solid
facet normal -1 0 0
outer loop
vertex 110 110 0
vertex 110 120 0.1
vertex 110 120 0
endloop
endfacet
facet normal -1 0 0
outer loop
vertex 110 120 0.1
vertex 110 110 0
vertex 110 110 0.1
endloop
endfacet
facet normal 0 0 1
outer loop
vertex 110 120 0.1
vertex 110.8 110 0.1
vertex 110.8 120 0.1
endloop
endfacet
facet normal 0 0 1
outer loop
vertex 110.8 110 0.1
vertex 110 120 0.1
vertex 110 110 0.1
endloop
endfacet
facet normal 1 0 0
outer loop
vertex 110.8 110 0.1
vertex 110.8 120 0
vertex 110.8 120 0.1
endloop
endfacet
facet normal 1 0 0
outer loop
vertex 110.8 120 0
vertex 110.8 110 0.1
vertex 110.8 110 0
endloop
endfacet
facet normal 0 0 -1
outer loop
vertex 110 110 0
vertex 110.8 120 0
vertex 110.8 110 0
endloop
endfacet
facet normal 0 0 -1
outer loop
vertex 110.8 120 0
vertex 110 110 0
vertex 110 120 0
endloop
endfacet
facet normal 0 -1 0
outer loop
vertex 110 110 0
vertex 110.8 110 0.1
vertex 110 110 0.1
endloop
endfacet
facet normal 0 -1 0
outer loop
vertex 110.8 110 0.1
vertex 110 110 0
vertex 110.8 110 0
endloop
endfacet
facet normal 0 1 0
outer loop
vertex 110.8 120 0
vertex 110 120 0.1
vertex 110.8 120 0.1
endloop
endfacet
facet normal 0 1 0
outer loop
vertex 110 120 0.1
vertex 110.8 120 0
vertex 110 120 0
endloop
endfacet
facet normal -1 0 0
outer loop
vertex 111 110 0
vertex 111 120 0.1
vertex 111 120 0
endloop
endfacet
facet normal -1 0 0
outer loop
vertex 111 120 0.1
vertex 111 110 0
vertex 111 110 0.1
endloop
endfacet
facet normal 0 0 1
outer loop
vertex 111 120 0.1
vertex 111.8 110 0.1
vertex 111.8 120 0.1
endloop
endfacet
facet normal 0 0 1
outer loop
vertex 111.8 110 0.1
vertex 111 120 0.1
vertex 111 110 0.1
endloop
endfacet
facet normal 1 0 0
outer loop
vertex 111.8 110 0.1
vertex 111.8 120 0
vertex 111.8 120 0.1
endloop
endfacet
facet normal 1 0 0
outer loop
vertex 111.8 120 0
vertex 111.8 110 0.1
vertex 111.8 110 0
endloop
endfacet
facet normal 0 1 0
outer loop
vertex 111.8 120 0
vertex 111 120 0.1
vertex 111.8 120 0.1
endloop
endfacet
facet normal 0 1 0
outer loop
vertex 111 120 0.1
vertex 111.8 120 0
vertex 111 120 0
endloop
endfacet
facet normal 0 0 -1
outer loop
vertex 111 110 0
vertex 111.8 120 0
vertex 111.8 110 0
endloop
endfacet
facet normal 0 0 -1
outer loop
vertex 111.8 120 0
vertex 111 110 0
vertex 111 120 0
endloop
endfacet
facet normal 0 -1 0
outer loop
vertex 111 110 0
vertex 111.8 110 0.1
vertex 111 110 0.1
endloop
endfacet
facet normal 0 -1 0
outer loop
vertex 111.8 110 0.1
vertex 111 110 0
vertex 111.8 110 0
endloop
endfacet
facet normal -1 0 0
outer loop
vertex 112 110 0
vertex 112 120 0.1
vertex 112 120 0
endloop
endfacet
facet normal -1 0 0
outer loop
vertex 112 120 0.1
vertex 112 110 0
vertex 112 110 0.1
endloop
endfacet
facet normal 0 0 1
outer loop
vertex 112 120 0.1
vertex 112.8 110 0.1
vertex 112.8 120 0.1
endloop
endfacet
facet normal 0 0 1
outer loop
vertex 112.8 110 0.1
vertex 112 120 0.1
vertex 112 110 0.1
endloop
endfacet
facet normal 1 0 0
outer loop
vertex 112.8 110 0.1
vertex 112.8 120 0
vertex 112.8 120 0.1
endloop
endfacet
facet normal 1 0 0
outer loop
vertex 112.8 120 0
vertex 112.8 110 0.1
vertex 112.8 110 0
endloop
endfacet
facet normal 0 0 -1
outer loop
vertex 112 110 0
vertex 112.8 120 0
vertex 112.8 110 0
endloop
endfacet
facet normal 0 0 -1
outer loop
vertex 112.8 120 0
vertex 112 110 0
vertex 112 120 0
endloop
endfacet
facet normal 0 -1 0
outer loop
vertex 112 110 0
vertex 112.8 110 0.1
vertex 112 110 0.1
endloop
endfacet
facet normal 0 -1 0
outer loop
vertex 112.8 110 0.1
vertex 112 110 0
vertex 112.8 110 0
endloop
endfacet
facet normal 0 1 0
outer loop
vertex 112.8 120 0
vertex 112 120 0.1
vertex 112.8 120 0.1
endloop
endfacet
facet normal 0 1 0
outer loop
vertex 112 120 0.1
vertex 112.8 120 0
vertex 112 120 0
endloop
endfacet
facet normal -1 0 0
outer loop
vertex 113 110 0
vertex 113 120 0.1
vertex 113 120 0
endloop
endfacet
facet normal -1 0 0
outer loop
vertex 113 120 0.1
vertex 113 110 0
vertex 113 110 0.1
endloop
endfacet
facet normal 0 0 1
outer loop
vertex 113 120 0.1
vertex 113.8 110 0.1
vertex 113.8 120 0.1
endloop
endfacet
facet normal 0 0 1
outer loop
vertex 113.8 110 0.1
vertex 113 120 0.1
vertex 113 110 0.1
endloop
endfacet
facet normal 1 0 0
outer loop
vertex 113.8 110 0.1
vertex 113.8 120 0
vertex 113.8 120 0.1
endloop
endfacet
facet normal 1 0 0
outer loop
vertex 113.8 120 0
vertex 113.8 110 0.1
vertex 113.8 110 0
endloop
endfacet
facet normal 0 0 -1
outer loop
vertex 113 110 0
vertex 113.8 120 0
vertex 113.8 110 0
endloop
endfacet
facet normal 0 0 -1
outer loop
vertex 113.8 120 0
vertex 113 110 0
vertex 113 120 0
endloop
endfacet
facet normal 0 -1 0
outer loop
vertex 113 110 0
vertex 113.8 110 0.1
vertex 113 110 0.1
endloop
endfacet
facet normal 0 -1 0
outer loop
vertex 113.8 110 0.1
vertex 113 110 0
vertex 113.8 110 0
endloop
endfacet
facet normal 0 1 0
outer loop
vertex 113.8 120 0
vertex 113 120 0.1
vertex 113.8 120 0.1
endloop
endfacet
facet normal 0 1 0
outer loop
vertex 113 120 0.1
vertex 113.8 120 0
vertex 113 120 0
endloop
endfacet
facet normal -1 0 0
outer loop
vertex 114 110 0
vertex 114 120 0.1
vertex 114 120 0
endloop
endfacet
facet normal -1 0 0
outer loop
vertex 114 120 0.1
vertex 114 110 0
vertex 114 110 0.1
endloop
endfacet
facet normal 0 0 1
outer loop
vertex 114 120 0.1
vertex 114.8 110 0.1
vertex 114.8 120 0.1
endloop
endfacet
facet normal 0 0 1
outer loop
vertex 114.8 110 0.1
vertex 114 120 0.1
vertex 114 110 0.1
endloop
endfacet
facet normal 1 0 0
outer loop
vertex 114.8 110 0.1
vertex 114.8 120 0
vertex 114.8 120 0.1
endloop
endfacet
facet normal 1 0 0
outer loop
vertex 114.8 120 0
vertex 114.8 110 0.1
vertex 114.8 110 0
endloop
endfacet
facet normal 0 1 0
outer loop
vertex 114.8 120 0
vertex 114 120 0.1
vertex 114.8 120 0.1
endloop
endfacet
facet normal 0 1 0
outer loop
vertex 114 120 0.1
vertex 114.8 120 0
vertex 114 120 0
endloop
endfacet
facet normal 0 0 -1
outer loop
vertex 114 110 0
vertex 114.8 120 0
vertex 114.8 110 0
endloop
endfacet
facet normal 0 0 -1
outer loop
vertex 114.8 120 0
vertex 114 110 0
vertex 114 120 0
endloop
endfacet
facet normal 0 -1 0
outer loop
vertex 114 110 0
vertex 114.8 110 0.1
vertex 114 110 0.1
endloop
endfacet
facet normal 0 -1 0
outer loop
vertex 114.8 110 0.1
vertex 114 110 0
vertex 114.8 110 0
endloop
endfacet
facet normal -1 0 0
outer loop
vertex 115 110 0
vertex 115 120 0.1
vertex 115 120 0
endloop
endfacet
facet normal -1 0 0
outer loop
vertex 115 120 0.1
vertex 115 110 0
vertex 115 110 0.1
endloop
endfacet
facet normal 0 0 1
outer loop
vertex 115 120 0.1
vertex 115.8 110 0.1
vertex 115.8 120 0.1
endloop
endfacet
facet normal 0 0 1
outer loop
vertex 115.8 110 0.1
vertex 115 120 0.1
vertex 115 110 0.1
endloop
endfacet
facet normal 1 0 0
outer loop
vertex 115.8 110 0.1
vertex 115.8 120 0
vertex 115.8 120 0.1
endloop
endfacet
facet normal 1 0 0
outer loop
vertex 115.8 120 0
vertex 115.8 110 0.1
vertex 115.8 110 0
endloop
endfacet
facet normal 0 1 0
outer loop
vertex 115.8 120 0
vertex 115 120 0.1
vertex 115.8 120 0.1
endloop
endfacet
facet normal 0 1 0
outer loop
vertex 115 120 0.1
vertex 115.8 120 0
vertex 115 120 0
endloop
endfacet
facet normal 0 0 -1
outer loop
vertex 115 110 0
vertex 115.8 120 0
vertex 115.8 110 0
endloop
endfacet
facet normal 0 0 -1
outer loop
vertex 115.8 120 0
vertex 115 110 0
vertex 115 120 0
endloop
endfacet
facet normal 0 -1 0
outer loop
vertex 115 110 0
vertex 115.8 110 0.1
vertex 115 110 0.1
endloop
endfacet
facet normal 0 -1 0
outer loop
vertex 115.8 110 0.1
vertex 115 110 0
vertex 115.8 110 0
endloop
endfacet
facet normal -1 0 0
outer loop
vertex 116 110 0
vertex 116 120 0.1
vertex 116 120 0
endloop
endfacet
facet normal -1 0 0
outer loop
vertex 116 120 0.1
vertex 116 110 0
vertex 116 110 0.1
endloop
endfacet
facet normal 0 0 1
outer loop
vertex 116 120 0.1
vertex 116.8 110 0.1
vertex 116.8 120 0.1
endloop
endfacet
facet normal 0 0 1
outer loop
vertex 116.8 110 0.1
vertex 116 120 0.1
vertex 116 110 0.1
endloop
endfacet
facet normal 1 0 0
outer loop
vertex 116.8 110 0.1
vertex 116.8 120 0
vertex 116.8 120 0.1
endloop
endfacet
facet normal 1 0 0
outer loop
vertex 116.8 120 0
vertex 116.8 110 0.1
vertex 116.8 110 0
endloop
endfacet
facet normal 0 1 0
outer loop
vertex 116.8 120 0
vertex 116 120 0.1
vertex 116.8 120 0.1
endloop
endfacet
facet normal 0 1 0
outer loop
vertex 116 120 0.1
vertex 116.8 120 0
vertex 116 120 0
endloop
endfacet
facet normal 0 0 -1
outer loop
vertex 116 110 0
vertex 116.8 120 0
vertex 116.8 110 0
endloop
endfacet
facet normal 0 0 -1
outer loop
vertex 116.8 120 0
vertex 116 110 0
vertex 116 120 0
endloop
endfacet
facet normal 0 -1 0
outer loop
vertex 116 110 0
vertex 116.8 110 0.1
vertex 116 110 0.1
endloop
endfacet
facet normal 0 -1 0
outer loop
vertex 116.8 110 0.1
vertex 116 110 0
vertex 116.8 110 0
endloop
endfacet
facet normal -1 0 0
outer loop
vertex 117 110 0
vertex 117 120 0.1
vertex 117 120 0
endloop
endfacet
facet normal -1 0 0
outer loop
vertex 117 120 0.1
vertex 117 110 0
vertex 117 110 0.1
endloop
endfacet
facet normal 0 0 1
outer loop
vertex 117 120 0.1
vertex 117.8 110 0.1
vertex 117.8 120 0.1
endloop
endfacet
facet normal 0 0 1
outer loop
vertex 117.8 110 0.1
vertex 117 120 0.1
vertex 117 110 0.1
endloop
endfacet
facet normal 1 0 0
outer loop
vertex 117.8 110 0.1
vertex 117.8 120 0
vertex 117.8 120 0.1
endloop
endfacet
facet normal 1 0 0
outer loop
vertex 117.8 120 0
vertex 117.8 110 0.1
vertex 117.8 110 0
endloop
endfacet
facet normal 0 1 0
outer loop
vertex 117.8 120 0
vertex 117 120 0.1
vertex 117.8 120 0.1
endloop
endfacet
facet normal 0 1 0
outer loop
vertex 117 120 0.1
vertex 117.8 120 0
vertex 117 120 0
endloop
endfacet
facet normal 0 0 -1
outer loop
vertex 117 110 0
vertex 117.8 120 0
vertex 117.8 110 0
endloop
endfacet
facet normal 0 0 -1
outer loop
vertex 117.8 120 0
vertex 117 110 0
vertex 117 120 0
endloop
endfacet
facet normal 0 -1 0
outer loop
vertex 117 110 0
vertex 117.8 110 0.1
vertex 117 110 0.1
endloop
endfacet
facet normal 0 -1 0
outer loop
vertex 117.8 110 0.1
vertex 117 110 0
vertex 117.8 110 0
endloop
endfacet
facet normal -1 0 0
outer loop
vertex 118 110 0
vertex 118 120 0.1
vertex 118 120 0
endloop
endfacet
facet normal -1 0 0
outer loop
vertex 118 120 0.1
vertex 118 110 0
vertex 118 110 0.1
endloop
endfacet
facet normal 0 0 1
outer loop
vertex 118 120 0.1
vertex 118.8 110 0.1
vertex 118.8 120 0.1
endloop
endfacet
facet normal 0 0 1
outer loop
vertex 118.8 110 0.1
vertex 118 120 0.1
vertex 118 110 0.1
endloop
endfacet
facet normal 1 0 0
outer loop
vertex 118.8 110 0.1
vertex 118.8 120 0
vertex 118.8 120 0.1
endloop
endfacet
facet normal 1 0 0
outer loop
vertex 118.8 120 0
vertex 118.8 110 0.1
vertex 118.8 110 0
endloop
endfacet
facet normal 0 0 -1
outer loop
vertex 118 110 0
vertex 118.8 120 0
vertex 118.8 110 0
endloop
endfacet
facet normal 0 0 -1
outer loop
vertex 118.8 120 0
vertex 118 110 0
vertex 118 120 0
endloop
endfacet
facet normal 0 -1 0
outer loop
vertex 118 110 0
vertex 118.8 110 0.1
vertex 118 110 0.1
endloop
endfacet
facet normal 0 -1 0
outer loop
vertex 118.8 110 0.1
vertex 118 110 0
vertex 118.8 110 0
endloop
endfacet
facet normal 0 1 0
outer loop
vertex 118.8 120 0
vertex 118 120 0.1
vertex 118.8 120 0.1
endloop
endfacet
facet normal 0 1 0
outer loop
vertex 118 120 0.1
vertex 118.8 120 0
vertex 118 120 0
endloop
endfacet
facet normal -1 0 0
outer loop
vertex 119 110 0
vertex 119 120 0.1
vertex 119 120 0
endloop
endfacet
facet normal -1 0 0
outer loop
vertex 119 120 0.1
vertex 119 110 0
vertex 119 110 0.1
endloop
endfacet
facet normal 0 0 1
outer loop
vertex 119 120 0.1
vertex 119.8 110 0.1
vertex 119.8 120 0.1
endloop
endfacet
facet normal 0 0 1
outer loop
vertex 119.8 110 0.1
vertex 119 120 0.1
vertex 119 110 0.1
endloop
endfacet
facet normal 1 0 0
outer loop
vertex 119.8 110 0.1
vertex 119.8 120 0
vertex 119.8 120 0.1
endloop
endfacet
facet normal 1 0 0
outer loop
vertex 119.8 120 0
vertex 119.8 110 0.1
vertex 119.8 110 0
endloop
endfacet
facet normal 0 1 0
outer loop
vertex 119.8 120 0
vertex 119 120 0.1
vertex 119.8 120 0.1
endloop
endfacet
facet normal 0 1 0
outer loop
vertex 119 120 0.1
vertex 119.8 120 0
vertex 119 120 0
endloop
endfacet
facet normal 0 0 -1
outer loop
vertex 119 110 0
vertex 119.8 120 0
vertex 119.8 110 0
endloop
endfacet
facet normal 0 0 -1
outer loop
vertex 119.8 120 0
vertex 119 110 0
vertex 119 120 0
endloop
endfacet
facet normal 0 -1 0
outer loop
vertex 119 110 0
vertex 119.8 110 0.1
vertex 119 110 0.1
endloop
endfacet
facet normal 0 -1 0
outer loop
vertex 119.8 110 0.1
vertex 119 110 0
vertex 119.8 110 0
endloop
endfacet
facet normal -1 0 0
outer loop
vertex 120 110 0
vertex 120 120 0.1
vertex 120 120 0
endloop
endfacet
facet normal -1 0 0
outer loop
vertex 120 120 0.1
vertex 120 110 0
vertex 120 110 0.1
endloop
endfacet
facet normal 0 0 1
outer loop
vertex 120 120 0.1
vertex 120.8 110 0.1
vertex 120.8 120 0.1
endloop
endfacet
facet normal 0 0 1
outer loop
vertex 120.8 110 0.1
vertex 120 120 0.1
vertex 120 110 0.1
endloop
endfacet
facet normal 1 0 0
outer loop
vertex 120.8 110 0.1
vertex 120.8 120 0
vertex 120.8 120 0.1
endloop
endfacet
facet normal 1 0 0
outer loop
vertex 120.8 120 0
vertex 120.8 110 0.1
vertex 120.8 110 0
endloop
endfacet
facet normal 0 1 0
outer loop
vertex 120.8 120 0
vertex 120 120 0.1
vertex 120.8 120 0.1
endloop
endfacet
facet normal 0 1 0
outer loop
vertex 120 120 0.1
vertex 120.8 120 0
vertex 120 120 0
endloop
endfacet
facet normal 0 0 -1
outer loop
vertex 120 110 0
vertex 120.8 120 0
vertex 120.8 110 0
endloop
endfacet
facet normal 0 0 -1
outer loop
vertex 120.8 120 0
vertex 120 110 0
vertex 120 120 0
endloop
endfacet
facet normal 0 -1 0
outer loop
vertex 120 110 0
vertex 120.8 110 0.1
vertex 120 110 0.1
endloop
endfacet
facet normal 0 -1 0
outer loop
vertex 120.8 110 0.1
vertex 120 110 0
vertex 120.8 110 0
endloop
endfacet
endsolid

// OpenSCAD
translate([10+100,10+100,0])
        for (i = [0 : 10]){
            translate([i,0,0])
                cube(size = [0.8,10,0.1]);
    }
